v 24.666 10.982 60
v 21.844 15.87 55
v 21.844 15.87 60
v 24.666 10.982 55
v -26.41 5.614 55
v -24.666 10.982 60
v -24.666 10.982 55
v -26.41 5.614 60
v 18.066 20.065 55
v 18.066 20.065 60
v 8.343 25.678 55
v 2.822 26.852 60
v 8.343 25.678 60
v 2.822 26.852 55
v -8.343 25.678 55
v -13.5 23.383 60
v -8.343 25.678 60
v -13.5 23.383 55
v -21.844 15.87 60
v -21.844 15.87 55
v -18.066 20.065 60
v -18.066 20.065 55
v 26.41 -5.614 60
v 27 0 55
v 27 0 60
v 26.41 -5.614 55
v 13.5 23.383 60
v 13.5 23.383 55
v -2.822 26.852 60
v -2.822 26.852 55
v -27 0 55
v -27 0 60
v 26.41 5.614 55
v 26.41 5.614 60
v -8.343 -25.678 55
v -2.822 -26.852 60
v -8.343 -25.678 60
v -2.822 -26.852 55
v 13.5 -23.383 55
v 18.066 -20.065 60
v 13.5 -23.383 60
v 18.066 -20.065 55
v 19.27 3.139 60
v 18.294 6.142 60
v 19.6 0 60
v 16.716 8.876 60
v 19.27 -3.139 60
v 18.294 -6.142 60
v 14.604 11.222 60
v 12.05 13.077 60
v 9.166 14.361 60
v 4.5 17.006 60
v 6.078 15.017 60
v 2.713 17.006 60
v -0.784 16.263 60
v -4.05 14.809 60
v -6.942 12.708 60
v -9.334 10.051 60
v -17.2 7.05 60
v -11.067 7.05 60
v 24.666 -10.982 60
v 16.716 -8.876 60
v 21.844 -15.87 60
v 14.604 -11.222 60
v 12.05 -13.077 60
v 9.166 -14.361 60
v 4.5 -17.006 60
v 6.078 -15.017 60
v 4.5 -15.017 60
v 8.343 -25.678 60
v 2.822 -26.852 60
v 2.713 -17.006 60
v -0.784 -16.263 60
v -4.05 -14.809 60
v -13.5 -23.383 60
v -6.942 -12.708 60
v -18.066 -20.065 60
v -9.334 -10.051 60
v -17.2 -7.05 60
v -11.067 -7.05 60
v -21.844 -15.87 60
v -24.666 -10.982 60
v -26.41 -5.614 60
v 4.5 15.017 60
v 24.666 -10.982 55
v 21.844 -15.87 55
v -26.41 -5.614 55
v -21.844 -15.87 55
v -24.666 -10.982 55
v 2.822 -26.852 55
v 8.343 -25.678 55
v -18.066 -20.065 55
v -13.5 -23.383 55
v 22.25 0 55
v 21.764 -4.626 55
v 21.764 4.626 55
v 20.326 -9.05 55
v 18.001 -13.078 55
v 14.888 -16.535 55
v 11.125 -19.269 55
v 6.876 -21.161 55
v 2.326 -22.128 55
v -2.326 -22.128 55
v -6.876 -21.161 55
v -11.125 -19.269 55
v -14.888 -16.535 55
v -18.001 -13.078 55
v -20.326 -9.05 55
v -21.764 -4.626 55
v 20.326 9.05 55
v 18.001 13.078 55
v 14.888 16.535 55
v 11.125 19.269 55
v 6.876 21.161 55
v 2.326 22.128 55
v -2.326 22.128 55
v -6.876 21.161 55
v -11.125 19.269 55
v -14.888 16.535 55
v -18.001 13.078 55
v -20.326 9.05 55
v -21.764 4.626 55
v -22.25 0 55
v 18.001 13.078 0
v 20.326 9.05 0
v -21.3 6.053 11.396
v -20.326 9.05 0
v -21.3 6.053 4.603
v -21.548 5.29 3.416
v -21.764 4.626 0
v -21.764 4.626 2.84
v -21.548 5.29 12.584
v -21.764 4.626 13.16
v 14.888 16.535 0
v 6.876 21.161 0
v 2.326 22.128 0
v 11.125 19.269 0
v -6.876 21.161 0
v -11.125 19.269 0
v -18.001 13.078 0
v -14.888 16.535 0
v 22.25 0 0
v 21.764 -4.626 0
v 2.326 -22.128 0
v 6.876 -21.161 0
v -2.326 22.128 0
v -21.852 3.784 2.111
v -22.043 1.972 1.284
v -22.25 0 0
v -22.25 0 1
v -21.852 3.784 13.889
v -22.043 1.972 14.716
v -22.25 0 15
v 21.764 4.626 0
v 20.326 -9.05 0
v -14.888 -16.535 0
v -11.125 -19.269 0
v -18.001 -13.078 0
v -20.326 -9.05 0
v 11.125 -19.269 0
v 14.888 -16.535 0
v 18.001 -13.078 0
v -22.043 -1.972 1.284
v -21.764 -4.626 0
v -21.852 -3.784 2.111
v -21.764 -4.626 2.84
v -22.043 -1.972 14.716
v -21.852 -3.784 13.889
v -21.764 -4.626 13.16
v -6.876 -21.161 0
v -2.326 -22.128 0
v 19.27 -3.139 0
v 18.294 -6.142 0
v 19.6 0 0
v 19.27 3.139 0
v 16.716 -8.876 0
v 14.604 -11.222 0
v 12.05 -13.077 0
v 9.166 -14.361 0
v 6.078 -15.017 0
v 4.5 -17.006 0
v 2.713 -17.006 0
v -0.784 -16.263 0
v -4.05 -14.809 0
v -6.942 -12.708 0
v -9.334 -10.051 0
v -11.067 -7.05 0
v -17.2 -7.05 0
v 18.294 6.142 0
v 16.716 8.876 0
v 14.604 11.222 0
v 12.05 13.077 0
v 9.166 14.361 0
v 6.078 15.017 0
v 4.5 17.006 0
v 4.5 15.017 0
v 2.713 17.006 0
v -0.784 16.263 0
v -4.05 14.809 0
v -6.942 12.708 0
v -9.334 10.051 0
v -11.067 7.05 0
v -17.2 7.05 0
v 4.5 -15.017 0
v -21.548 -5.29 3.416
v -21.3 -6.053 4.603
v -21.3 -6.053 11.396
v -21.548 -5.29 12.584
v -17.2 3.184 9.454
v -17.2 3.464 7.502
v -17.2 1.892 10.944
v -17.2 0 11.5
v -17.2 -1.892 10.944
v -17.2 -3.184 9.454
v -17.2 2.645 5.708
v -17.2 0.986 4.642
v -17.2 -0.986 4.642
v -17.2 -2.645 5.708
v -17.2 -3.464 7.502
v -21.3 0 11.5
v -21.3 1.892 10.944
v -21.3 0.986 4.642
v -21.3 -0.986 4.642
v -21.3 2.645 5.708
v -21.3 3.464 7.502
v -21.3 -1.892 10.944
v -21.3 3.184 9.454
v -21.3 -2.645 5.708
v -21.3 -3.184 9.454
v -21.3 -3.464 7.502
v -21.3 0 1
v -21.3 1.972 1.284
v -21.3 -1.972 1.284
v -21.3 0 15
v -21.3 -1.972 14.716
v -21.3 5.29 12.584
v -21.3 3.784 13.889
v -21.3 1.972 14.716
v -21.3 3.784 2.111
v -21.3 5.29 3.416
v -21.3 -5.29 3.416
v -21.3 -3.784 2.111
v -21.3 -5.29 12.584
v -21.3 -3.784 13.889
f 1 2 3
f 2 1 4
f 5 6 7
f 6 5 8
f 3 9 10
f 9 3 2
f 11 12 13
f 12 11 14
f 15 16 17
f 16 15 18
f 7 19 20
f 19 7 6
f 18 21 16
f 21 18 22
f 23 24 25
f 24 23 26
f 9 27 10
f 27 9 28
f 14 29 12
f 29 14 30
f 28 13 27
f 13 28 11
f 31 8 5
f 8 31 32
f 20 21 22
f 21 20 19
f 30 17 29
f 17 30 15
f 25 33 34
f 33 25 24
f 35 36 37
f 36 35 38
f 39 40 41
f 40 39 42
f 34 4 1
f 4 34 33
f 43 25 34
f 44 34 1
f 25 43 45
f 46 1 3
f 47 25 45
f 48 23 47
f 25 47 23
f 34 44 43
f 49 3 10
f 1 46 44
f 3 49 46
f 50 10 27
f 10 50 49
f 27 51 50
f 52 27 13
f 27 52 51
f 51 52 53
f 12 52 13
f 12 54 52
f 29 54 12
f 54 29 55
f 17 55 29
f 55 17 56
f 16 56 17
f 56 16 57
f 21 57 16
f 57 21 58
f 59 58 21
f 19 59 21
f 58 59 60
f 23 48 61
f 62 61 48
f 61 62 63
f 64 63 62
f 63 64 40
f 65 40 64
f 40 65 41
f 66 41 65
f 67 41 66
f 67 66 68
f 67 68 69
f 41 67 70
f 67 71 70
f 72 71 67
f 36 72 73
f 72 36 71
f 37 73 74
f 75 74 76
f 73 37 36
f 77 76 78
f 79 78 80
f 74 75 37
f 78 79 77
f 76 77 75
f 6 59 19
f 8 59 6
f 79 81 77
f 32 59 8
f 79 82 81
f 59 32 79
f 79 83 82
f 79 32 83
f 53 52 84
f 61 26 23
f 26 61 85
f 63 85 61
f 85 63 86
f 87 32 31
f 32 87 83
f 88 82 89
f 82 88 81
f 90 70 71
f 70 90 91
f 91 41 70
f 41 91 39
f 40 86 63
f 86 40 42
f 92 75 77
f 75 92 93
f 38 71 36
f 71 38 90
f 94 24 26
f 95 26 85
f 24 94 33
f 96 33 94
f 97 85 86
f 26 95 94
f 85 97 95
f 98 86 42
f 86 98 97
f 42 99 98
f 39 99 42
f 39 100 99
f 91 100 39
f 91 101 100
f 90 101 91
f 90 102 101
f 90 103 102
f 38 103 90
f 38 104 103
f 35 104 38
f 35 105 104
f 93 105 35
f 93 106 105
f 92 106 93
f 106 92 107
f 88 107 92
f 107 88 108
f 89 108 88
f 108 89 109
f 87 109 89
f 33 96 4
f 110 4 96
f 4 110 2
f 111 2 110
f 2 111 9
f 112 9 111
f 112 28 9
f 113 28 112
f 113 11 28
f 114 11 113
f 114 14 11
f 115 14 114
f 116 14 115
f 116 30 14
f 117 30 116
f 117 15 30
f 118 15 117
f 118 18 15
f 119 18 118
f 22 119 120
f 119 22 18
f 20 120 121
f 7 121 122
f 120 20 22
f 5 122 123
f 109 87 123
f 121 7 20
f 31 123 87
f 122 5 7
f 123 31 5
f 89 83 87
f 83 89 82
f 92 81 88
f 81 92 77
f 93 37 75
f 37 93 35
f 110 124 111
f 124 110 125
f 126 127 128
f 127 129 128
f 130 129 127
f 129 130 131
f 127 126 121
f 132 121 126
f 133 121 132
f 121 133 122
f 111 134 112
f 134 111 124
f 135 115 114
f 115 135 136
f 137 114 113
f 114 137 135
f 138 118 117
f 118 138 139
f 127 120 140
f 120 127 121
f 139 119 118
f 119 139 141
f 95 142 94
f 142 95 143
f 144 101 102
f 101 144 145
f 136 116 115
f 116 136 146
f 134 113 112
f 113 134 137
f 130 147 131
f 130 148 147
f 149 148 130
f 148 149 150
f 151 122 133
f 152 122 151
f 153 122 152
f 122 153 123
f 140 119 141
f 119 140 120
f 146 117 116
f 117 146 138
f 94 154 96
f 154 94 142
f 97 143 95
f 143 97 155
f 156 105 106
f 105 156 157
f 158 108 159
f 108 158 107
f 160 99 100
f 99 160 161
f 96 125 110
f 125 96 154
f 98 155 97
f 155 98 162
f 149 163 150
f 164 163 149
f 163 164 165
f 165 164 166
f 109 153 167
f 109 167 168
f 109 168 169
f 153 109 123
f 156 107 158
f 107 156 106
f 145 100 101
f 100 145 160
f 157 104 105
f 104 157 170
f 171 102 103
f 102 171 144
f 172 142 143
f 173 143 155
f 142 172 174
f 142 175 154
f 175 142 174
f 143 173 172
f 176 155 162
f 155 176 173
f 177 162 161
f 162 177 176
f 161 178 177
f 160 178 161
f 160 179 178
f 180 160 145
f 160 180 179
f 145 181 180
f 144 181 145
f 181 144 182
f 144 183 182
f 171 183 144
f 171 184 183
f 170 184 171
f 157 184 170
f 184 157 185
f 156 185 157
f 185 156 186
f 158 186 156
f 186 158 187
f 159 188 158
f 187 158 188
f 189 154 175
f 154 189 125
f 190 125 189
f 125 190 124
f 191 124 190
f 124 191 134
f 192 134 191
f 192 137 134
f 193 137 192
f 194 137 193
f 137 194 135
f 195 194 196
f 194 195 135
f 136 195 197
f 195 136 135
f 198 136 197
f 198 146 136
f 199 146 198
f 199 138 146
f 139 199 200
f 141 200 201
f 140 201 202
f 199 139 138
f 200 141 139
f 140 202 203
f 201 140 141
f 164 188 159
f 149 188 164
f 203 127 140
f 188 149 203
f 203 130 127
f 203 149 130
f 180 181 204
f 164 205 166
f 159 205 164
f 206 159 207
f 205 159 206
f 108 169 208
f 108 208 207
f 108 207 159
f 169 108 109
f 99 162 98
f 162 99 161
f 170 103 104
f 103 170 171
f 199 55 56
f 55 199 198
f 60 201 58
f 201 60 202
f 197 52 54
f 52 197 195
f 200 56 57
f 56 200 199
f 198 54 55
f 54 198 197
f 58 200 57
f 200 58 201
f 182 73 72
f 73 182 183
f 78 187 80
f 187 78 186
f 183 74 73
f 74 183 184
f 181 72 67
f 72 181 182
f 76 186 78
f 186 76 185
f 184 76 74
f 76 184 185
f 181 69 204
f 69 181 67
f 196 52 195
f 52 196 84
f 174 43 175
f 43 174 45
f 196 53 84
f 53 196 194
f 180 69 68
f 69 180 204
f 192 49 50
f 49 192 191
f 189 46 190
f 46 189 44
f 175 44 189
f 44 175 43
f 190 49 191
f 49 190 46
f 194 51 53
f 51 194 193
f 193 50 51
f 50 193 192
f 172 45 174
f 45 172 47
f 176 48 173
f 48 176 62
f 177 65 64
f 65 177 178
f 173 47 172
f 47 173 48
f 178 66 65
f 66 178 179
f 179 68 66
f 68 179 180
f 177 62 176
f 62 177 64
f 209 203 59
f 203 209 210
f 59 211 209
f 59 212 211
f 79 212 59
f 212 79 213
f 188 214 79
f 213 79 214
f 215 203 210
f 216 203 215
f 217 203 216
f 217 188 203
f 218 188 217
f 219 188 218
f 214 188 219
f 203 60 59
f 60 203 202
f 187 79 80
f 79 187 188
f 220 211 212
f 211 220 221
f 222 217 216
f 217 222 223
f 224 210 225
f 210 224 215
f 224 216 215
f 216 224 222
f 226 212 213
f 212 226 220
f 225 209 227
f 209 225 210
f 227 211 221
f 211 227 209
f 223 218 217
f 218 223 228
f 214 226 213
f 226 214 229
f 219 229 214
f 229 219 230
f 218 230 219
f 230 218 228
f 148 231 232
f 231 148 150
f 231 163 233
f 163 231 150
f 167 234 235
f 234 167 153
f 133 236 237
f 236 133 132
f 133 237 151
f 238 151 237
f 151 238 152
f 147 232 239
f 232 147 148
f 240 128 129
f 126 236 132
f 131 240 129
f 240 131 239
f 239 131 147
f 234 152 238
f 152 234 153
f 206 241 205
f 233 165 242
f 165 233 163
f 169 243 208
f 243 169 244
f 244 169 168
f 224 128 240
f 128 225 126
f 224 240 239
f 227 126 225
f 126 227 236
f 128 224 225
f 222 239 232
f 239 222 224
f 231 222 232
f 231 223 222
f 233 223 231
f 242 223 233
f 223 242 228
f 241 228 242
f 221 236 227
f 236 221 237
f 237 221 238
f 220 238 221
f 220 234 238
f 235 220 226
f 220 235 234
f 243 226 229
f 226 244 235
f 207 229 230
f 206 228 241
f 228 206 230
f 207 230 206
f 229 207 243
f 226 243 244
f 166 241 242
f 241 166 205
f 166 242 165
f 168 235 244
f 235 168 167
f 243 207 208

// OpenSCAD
difference(){
    union(){
    translate([0,0,55]) cylinder(r=27, h=5);
 //cylinder(r=28.5, h=5);
 
 cylinder(r=22.25, h=60);
        //half_circle();
 //translate([0,0,11]) cylinder(r1=15, r2=19, h=5);
 //translate([0,0,16]) cylinder(r=19, h=10);
 //translate([0,0,26]) cylinder(r1=19, r2=15, h=5);
    }
    translate([4.5,0,0]) inner_structure();
    //translate([-23,0,9])  rotate([0,90,0]) cylinder(r=3.5, h=8);
    //translate([-25.5,0,9])  rotate([0,90,0]) cylinder(r=6.5, h=4);
    translate([-13.8,0,8])  rotate([0,270,0]) cheese_head();
    //#translate([0,0,-19]) cheese_head();
     }
     
module slot(){
    difference() {
        cylinder(r=15, h=63);
        translate([0,0,-1]) cylinder(r=13, h=65);
        translate([8,0,-2])cube([9, 16, 65]);
        translate([-17,0,-2])cube([9, 16, 65]);
        translate([-15,-15,-2])cube([32, 16, 65]);
    }
}

module half_circle(){
        difference(){
         cylinder(r=17.1, h=65);   
         translate([0,-18,-3]) cube([18, 36, 65]);   
            
            }   
}

module inner_structure(){
    translate([0,0,-1]) cylinder(r=15.1, h=62);
    //translate([0,0,-1]) slot();
    translate([-21.7,-7.05,-1]) cube([7, 14.1, 62]);
   //translate([0,0,19]) cylinder(r=16, h=4.5);
    translate([0,0,-1]) half_circle();    
    }
    
    module cheese_head(){
          cylinder(r=3.5, h=8);
        translate([0,0,7.5])   cylinder(r=7, h=4);
        }

     
